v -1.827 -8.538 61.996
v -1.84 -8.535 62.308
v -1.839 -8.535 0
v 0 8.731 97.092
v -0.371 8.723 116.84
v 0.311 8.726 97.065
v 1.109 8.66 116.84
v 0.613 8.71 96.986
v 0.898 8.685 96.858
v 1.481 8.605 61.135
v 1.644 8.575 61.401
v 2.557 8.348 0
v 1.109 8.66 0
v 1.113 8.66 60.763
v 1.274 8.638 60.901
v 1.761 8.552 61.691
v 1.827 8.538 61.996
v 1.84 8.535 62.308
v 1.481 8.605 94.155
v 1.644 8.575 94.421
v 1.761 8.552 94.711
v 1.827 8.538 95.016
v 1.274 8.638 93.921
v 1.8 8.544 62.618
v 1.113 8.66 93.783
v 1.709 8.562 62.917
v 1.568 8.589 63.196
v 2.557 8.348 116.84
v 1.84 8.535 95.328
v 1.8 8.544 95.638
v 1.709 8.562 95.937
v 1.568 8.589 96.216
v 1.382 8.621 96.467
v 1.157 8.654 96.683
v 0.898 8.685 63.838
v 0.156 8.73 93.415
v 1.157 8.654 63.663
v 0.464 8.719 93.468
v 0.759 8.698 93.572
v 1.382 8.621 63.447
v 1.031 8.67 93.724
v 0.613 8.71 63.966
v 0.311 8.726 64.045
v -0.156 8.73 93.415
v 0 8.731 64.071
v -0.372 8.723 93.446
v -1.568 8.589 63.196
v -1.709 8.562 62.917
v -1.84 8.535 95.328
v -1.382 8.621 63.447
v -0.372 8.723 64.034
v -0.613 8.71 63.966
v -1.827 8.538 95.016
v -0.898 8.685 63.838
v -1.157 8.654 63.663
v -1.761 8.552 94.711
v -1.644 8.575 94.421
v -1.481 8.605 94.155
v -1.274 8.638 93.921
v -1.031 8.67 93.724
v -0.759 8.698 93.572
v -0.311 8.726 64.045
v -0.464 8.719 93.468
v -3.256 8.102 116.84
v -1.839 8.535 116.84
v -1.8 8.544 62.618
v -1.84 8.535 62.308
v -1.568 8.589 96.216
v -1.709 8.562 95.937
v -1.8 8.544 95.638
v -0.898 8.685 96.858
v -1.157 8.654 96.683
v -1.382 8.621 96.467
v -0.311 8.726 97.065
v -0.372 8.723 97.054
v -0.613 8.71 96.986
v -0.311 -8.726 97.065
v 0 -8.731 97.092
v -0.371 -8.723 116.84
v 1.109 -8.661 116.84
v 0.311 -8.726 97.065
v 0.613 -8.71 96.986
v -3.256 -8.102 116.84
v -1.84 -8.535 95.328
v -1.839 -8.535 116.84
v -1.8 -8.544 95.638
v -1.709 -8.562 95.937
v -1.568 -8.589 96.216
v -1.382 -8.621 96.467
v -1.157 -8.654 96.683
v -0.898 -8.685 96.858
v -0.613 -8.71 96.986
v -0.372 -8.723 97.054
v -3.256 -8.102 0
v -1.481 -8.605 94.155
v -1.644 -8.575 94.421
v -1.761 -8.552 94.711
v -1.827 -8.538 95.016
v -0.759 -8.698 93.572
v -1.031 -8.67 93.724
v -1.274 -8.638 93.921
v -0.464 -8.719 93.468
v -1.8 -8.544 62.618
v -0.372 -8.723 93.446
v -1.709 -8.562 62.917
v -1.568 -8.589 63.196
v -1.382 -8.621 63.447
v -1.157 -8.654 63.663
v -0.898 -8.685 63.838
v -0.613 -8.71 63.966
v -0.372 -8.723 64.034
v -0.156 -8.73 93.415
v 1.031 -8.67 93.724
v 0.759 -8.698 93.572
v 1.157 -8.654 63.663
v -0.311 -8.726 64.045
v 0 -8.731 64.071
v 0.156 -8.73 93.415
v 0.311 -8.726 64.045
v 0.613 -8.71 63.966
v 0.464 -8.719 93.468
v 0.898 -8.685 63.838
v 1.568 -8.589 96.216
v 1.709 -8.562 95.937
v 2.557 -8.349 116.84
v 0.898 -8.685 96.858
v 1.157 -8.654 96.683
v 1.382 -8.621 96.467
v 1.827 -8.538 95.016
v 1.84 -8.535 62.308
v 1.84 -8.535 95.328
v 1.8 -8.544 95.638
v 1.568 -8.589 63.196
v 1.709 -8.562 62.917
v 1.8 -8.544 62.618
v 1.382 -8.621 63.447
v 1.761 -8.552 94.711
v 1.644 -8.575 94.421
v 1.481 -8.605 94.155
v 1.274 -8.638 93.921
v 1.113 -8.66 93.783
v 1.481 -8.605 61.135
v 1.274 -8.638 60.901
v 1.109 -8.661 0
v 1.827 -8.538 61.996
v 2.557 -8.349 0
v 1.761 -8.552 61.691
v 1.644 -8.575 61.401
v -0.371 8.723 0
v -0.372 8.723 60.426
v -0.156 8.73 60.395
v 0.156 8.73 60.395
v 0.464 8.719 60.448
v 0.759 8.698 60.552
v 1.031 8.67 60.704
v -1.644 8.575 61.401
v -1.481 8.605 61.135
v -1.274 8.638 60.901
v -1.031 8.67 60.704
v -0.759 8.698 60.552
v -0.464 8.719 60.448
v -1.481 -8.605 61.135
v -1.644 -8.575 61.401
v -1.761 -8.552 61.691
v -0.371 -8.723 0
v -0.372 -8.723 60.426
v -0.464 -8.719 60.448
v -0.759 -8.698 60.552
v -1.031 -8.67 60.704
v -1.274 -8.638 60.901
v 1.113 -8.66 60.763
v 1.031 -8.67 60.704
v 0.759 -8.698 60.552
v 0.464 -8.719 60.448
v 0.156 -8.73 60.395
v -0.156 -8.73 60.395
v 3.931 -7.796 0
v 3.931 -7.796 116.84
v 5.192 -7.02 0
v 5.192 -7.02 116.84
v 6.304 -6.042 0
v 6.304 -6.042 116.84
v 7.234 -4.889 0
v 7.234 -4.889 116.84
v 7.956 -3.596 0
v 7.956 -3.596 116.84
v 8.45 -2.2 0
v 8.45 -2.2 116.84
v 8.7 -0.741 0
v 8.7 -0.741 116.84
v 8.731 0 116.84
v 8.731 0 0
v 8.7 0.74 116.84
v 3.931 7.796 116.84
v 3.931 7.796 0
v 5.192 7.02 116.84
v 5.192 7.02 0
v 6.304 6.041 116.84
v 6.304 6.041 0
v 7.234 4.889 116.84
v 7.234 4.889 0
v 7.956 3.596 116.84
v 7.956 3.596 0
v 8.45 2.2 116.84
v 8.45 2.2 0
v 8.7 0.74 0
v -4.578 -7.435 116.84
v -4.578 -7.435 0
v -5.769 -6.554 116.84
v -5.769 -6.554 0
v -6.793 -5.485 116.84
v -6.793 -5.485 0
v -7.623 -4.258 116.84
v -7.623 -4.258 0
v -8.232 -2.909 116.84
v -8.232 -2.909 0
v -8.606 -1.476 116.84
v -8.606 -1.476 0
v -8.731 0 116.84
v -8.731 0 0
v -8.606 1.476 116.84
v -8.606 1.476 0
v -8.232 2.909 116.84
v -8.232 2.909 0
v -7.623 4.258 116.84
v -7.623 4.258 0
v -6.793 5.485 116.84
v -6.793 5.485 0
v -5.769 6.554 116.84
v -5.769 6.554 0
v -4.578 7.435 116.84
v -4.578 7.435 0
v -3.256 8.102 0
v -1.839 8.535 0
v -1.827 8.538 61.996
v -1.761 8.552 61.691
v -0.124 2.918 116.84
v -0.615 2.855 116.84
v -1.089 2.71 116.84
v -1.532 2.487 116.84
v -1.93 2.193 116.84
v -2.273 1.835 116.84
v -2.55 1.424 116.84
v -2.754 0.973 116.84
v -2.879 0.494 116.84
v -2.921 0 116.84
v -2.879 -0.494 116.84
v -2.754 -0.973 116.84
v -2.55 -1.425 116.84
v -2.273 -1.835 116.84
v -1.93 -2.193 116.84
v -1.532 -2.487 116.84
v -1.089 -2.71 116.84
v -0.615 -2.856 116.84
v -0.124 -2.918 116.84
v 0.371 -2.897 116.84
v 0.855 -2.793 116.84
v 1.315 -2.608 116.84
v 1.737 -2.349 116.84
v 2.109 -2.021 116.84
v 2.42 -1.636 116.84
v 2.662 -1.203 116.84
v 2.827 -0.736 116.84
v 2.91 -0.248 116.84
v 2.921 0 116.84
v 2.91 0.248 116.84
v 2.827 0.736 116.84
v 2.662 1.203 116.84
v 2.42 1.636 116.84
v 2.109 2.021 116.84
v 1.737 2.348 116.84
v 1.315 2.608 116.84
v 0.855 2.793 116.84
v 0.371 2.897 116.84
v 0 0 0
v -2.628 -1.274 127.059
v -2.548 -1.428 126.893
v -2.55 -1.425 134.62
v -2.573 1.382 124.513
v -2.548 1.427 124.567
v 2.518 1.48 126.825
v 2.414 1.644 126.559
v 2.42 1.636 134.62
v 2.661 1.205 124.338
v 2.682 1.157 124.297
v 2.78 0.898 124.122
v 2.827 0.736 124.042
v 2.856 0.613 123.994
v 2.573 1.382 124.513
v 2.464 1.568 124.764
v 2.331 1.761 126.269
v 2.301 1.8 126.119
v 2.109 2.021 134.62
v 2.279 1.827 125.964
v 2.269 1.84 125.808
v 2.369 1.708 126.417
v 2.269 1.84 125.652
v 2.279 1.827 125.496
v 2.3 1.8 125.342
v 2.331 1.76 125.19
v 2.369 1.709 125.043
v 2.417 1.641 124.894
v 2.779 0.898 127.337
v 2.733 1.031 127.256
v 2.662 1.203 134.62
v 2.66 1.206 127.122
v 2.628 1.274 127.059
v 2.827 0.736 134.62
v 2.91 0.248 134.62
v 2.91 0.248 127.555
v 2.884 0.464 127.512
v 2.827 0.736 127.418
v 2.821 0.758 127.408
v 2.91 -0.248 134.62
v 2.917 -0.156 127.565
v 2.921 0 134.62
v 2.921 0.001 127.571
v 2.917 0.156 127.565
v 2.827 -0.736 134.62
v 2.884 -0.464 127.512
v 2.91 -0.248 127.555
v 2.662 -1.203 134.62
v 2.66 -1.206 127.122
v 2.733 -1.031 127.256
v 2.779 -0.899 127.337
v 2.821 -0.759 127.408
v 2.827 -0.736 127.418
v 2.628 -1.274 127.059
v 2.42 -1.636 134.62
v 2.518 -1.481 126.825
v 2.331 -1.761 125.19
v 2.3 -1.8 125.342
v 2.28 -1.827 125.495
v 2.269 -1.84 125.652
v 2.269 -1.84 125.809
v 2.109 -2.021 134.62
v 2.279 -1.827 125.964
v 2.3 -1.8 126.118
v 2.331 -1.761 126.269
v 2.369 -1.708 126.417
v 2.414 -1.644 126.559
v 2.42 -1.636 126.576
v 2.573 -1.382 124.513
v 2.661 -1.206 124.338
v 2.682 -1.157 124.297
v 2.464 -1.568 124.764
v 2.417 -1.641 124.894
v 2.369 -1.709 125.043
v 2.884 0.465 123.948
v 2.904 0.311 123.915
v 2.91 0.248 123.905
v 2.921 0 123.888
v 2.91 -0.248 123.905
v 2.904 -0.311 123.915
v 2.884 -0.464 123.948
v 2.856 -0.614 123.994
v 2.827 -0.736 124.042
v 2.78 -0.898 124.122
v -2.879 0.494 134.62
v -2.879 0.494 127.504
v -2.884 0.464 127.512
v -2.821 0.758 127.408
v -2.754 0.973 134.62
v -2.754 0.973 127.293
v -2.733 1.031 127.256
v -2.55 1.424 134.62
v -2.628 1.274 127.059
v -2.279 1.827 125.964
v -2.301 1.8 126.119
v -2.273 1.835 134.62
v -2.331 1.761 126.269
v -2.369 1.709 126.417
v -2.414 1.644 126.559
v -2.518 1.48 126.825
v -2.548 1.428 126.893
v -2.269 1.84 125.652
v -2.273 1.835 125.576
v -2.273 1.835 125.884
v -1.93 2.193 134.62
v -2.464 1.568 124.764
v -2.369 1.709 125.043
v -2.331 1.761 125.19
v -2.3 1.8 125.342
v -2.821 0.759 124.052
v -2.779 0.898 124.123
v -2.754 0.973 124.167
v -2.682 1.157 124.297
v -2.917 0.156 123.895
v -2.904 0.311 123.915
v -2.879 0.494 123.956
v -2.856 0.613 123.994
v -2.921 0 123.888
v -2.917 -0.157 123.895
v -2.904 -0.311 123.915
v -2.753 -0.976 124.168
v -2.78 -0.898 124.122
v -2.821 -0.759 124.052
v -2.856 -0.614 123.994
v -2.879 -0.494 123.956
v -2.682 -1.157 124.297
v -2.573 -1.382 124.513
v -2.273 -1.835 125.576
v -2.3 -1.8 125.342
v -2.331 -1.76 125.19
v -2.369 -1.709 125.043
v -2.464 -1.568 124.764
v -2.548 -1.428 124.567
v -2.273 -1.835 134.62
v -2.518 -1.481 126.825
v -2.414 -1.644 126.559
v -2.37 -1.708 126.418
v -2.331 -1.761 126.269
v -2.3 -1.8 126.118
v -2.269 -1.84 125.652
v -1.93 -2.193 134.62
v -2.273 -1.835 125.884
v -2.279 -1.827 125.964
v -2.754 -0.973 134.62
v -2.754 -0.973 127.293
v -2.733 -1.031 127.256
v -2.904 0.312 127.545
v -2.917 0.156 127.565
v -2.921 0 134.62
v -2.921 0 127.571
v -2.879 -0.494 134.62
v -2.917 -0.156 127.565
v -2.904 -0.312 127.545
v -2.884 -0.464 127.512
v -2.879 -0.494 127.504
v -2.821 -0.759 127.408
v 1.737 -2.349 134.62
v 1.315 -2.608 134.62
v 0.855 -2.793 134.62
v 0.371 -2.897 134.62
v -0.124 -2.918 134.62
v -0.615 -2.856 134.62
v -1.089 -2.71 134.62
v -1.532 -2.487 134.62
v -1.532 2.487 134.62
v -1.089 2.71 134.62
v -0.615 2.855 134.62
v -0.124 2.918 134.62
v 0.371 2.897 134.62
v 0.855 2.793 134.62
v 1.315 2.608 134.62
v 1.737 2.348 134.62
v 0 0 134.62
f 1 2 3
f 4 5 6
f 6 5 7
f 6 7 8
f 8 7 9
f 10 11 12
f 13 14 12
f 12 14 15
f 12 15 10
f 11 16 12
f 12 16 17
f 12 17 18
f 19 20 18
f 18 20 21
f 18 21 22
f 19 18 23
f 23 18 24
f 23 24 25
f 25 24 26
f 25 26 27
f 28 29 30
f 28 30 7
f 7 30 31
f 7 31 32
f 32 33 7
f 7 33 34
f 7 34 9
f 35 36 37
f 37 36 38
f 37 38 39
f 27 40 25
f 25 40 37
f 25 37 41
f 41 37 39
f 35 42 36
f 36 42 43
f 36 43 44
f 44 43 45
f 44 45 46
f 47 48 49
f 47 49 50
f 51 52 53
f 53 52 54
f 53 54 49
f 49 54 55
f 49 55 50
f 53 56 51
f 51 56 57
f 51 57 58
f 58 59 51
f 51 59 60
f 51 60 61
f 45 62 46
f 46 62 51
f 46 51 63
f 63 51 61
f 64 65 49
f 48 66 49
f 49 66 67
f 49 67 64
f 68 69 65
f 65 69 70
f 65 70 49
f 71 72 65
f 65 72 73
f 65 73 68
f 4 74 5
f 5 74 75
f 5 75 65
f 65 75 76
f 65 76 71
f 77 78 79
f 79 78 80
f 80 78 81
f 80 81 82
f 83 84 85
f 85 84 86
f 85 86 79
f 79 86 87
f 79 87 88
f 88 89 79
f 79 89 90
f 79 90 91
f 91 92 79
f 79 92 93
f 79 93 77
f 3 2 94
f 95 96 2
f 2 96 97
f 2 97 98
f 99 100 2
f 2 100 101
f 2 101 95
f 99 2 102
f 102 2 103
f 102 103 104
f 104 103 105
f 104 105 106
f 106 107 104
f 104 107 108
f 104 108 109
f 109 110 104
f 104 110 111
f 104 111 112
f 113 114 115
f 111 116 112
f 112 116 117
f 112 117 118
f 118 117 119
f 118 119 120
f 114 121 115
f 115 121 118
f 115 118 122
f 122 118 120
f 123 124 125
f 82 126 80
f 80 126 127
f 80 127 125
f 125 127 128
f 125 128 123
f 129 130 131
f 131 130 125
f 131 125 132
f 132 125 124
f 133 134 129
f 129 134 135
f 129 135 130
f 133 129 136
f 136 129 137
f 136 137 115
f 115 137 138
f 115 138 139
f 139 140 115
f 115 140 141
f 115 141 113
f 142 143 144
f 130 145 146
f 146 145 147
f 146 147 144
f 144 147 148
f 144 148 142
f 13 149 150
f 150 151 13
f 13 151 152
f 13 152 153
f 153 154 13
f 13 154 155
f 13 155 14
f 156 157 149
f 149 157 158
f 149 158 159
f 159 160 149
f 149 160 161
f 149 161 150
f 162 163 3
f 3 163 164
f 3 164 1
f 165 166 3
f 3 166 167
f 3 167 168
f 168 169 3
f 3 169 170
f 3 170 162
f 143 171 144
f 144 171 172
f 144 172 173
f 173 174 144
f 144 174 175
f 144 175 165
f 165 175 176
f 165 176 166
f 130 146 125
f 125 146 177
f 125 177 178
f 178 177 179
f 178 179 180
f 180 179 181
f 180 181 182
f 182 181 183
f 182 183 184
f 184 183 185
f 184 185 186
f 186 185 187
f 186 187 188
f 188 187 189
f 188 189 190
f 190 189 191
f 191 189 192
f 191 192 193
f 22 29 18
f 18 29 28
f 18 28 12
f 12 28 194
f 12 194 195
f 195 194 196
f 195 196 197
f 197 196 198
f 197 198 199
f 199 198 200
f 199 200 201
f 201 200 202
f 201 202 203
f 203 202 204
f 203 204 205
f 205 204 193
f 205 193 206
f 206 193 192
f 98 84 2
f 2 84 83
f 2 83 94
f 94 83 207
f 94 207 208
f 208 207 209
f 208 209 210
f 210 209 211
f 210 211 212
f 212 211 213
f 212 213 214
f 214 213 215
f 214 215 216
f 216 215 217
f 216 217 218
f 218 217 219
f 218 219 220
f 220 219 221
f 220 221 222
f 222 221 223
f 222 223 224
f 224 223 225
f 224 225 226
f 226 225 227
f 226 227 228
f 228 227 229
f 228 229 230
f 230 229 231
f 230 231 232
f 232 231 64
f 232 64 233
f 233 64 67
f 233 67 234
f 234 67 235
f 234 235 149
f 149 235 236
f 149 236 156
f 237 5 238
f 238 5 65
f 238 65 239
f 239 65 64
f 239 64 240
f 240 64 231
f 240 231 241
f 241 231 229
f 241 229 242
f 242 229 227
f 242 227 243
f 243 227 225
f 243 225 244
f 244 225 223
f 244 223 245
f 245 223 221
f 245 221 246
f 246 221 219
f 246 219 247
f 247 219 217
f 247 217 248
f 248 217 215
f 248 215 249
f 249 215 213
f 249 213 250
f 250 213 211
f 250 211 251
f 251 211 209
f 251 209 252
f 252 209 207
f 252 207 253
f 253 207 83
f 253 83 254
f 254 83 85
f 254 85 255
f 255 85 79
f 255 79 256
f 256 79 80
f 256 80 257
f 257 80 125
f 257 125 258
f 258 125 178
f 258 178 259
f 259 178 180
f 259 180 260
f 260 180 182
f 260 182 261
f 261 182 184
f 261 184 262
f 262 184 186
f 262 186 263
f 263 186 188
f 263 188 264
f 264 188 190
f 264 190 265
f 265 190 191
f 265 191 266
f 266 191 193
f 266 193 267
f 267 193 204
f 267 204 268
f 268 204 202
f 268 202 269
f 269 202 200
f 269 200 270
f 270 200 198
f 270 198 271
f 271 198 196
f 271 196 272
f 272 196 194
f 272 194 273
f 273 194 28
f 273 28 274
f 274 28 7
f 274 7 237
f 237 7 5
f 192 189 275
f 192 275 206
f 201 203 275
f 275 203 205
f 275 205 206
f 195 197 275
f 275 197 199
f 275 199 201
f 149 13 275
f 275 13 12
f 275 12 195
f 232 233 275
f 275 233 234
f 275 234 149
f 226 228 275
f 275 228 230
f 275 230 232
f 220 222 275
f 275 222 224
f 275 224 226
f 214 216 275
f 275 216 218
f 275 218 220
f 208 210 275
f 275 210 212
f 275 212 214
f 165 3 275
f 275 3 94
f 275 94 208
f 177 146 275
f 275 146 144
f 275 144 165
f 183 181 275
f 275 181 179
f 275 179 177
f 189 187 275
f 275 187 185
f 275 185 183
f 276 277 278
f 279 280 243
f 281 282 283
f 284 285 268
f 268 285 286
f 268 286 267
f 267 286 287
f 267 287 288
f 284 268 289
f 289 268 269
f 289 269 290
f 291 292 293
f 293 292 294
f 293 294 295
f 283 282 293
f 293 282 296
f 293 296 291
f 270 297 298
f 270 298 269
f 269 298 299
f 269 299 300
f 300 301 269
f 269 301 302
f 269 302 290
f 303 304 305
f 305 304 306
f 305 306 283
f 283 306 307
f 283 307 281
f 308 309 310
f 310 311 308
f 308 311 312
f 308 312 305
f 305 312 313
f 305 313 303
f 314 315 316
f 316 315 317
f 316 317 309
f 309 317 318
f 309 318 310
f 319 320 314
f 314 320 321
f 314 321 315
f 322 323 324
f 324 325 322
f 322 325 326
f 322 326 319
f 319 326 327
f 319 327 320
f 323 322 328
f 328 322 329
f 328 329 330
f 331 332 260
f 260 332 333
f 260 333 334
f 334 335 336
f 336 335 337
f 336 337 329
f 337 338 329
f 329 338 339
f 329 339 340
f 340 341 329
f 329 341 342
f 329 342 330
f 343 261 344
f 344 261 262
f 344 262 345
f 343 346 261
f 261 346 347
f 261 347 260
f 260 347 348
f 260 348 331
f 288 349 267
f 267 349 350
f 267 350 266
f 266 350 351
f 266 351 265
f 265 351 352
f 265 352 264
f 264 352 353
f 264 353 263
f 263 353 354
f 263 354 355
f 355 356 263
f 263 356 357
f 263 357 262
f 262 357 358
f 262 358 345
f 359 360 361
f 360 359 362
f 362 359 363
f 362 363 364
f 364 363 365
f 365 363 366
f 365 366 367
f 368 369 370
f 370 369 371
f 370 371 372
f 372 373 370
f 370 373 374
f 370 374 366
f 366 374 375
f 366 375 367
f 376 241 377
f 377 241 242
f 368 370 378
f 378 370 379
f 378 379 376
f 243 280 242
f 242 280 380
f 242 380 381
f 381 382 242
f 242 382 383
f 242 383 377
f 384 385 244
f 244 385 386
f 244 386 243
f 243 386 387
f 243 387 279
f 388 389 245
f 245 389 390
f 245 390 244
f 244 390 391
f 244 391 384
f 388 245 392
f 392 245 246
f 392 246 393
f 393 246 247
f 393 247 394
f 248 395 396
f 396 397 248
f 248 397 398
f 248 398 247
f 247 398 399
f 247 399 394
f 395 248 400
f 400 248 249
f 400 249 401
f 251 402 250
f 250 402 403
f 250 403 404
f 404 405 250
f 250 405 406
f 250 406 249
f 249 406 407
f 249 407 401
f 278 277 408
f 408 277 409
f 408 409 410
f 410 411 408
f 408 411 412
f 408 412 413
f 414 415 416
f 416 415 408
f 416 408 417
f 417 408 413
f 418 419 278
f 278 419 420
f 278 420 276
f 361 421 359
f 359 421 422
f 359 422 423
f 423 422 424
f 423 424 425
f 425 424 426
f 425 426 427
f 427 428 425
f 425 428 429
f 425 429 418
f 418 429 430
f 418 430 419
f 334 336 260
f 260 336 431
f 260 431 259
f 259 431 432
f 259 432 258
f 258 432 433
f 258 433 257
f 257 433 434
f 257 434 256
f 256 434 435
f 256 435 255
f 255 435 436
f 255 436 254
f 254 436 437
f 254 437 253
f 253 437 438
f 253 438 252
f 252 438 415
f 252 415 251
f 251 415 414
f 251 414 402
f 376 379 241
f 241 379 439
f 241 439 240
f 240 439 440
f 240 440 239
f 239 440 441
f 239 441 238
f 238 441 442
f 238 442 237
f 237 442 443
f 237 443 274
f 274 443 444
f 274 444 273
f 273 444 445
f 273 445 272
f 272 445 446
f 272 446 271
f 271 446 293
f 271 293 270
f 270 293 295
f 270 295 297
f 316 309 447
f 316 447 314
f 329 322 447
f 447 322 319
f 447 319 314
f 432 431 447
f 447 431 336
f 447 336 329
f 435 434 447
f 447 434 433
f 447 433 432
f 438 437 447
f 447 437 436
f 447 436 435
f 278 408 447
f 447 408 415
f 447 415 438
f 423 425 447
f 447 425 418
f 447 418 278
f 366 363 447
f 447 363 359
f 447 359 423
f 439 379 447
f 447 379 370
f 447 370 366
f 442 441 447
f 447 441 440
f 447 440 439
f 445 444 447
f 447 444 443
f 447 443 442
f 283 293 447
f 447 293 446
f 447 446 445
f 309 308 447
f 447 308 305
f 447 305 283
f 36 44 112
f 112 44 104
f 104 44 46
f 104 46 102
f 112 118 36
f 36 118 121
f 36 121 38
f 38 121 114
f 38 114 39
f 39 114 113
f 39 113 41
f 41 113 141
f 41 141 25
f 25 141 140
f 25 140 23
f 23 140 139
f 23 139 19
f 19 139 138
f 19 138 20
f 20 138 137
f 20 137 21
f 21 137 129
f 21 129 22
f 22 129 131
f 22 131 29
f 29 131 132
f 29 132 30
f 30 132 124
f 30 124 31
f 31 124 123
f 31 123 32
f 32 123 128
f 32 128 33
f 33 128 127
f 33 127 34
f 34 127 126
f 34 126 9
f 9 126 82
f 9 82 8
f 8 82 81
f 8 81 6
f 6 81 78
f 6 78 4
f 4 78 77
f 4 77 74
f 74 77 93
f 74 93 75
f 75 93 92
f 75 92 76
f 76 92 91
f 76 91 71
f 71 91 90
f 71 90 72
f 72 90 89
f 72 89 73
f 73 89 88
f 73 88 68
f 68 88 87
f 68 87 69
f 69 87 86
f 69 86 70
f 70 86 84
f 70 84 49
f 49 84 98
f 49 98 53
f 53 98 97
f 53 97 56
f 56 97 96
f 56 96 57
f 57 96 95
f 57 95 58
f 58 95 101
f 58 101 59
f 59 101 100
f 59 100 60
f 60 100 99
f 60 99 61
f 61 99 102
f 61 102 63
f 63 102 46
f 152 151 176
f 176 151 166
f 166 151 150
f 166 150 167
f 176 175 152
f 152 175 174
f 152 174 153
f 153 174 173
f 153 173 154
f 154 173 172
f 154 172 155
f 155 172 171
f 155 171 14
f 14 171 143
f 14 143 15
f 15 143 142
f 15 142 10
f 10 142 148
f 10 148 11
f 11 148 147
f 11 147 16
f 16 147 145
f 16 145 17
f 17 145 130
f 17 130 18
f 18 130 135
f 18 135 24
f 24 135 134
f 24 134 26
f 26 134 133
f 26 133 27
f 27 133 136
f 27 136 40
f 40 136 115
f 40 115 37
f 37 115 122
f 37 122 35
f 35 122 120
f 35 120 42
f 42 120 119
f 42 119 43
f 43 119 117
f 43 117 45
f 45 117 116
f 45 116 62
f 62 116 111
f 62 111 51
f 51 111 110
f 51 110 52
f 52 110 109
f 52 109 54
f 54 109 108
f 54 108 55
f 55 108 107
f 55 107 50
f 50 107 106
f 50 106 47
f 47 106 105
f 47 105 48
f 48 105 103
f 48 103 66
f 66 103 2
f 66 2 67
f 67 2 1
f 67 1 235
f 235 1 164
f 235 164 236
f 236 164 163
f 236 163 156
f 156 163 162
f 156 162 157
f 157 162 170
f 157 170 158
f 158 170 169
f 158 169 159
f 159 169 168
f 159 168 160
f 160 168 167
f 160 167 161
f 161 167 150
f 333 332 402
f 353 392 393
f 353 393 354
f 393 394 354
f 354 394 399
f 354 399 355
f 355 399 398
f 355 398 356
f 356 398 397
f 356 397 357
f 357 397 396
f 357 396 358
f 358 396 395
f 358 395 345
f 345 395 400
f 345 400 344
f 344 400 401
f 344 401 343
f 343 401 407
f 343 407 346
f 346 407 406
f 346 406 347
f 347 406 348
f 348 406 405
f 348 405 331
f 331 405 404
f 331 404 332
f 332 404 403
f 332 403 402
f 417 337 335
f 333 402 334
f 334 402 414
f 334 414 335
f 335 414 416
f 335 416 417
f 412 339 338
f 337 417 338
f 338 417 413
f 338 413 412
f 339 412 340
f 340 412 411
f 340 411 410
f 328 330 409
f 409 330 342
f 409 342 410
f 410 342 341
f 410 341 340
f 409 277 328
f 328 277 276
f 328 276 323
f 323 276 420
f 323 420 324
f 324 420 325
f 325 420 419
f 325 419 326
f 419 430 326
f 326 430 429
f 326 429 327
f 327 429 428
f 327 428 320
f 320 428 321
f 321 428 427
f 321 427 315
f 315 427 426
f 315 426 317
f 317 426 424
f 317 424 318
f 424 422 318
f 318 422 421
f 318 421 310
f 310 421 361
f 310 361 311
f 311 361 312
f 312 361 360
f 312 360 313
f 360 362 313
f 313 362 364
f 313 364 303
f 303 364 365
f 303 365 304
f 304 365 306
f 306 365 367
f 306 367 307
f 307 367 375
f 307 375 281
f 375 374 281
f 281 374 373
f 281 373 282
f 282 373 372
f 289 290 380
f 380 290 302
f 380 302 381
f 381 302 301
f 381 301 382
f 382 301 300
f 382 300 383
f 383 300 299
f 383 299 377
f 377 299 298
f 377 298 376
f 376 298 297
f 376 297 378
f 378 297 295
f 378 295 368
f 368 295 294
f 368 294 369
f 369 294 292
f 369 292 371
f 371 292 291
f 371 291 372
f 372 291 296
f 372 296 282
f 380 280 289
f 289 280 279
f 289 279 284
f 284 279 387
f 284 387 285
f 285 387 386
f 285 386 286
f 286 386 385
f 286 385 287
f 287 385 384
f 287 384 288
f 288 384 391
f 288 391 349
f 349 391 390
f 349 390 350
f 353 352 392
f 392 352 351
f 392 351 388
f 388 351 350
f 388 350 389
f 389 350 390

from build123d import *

# Parameters (mm, degrees)
SKETCH1_R             = 8.73125
BOSS_EXTRUDE1_DEPTH   = 116.84
SKETCH2_R             = 2.921
BOSS_EXTRUDE2_DEPTH   = 17.78
F_6_32_TAPPED_HOLE1_D = 2.7051
F_6_32_TAPPED_HOLE2_D = 2.7051
SKETCH4_R             = 1.8415
CUT_EXTRUDE1_DEPTH    = 137.028372284
SKETCH7_R             = 1.8415
CUT_EXTRUDE2_DEPTH    = 136.405147936


with BuildPart() as part:
    # Sketch1 → Boss-Extrude1 (new body)
    with BuildSketch(Plane.XY):
        with Locations(Location((0, 0, 0), (0, 0, 180))):
            Circle(SKETCH1_R)
    extrude(amount=BOSS_EXTRUDE1_DEPTH)

    # Sketch2 → Boss-Extrude2 (add)
    with BuildSketch(Plane.XY.offset(116.84)):
        Circle(SKETCH2_R)
    extrude(amount=BOSS_EXTRUDE2_DEPTH)

    # #6-32 Tapped Hole1 (through all)
    with Locations(Plane(origin=(0, 8.73125, 0), x_dir=(1, 0, 0), z_dir=(0, 1, 0))):
        with Locations((0, -62.23), (0, -95.25)):
            Hole(F_6_32_TAPPED_HOLE1_D / 2)

    # #6-32 Tapped Hole2 (through all)
    with Locations(Plane(origin=(2.921, 0, 0), x_dir=(0, 0, -1), z_dir=(1, 0, 0))):
        with Locations((-125.73, 0)):
            Hole(F_6_32_TAPPED_HOLE2_D / 2)

    # Sketch4 → Cut-Extrude1 (cut, through all)
    with BuildSketch(Plane(origin=(0, 8.73125, 0), x_dir=(1, 0, 0), z_dir=(0, 1, 0))):
        with Locations(Location((0, -62.23, 0), (0, 0, 270))):
            Circle(SKETCH4_R)
        with Locations(Location((0, -95.25, 0), (0, 0, 270))):
            Circle(SKETCH4_R)
    extrude(amount=-CUT_EXTRUDE1_DEPTH, mode=Mode.SUBTRACT)

    # Sketch7 → Cut-Extrude2 (cut, through all)
    with BuildSketch(Plane(origin=(2.921, 0, 0), x_dir=(0, 0, -1), z_dir=(1, 0, 0))):
        with Locations(Location((-125.73, 0, 0), (0, 0, 180))):
            Circle(SKETCH7_R)
    extrude(amount=-CUT_EXTRUDE2_DEPTH, mode=Mode.SUBTRACT)


solid = part.part
